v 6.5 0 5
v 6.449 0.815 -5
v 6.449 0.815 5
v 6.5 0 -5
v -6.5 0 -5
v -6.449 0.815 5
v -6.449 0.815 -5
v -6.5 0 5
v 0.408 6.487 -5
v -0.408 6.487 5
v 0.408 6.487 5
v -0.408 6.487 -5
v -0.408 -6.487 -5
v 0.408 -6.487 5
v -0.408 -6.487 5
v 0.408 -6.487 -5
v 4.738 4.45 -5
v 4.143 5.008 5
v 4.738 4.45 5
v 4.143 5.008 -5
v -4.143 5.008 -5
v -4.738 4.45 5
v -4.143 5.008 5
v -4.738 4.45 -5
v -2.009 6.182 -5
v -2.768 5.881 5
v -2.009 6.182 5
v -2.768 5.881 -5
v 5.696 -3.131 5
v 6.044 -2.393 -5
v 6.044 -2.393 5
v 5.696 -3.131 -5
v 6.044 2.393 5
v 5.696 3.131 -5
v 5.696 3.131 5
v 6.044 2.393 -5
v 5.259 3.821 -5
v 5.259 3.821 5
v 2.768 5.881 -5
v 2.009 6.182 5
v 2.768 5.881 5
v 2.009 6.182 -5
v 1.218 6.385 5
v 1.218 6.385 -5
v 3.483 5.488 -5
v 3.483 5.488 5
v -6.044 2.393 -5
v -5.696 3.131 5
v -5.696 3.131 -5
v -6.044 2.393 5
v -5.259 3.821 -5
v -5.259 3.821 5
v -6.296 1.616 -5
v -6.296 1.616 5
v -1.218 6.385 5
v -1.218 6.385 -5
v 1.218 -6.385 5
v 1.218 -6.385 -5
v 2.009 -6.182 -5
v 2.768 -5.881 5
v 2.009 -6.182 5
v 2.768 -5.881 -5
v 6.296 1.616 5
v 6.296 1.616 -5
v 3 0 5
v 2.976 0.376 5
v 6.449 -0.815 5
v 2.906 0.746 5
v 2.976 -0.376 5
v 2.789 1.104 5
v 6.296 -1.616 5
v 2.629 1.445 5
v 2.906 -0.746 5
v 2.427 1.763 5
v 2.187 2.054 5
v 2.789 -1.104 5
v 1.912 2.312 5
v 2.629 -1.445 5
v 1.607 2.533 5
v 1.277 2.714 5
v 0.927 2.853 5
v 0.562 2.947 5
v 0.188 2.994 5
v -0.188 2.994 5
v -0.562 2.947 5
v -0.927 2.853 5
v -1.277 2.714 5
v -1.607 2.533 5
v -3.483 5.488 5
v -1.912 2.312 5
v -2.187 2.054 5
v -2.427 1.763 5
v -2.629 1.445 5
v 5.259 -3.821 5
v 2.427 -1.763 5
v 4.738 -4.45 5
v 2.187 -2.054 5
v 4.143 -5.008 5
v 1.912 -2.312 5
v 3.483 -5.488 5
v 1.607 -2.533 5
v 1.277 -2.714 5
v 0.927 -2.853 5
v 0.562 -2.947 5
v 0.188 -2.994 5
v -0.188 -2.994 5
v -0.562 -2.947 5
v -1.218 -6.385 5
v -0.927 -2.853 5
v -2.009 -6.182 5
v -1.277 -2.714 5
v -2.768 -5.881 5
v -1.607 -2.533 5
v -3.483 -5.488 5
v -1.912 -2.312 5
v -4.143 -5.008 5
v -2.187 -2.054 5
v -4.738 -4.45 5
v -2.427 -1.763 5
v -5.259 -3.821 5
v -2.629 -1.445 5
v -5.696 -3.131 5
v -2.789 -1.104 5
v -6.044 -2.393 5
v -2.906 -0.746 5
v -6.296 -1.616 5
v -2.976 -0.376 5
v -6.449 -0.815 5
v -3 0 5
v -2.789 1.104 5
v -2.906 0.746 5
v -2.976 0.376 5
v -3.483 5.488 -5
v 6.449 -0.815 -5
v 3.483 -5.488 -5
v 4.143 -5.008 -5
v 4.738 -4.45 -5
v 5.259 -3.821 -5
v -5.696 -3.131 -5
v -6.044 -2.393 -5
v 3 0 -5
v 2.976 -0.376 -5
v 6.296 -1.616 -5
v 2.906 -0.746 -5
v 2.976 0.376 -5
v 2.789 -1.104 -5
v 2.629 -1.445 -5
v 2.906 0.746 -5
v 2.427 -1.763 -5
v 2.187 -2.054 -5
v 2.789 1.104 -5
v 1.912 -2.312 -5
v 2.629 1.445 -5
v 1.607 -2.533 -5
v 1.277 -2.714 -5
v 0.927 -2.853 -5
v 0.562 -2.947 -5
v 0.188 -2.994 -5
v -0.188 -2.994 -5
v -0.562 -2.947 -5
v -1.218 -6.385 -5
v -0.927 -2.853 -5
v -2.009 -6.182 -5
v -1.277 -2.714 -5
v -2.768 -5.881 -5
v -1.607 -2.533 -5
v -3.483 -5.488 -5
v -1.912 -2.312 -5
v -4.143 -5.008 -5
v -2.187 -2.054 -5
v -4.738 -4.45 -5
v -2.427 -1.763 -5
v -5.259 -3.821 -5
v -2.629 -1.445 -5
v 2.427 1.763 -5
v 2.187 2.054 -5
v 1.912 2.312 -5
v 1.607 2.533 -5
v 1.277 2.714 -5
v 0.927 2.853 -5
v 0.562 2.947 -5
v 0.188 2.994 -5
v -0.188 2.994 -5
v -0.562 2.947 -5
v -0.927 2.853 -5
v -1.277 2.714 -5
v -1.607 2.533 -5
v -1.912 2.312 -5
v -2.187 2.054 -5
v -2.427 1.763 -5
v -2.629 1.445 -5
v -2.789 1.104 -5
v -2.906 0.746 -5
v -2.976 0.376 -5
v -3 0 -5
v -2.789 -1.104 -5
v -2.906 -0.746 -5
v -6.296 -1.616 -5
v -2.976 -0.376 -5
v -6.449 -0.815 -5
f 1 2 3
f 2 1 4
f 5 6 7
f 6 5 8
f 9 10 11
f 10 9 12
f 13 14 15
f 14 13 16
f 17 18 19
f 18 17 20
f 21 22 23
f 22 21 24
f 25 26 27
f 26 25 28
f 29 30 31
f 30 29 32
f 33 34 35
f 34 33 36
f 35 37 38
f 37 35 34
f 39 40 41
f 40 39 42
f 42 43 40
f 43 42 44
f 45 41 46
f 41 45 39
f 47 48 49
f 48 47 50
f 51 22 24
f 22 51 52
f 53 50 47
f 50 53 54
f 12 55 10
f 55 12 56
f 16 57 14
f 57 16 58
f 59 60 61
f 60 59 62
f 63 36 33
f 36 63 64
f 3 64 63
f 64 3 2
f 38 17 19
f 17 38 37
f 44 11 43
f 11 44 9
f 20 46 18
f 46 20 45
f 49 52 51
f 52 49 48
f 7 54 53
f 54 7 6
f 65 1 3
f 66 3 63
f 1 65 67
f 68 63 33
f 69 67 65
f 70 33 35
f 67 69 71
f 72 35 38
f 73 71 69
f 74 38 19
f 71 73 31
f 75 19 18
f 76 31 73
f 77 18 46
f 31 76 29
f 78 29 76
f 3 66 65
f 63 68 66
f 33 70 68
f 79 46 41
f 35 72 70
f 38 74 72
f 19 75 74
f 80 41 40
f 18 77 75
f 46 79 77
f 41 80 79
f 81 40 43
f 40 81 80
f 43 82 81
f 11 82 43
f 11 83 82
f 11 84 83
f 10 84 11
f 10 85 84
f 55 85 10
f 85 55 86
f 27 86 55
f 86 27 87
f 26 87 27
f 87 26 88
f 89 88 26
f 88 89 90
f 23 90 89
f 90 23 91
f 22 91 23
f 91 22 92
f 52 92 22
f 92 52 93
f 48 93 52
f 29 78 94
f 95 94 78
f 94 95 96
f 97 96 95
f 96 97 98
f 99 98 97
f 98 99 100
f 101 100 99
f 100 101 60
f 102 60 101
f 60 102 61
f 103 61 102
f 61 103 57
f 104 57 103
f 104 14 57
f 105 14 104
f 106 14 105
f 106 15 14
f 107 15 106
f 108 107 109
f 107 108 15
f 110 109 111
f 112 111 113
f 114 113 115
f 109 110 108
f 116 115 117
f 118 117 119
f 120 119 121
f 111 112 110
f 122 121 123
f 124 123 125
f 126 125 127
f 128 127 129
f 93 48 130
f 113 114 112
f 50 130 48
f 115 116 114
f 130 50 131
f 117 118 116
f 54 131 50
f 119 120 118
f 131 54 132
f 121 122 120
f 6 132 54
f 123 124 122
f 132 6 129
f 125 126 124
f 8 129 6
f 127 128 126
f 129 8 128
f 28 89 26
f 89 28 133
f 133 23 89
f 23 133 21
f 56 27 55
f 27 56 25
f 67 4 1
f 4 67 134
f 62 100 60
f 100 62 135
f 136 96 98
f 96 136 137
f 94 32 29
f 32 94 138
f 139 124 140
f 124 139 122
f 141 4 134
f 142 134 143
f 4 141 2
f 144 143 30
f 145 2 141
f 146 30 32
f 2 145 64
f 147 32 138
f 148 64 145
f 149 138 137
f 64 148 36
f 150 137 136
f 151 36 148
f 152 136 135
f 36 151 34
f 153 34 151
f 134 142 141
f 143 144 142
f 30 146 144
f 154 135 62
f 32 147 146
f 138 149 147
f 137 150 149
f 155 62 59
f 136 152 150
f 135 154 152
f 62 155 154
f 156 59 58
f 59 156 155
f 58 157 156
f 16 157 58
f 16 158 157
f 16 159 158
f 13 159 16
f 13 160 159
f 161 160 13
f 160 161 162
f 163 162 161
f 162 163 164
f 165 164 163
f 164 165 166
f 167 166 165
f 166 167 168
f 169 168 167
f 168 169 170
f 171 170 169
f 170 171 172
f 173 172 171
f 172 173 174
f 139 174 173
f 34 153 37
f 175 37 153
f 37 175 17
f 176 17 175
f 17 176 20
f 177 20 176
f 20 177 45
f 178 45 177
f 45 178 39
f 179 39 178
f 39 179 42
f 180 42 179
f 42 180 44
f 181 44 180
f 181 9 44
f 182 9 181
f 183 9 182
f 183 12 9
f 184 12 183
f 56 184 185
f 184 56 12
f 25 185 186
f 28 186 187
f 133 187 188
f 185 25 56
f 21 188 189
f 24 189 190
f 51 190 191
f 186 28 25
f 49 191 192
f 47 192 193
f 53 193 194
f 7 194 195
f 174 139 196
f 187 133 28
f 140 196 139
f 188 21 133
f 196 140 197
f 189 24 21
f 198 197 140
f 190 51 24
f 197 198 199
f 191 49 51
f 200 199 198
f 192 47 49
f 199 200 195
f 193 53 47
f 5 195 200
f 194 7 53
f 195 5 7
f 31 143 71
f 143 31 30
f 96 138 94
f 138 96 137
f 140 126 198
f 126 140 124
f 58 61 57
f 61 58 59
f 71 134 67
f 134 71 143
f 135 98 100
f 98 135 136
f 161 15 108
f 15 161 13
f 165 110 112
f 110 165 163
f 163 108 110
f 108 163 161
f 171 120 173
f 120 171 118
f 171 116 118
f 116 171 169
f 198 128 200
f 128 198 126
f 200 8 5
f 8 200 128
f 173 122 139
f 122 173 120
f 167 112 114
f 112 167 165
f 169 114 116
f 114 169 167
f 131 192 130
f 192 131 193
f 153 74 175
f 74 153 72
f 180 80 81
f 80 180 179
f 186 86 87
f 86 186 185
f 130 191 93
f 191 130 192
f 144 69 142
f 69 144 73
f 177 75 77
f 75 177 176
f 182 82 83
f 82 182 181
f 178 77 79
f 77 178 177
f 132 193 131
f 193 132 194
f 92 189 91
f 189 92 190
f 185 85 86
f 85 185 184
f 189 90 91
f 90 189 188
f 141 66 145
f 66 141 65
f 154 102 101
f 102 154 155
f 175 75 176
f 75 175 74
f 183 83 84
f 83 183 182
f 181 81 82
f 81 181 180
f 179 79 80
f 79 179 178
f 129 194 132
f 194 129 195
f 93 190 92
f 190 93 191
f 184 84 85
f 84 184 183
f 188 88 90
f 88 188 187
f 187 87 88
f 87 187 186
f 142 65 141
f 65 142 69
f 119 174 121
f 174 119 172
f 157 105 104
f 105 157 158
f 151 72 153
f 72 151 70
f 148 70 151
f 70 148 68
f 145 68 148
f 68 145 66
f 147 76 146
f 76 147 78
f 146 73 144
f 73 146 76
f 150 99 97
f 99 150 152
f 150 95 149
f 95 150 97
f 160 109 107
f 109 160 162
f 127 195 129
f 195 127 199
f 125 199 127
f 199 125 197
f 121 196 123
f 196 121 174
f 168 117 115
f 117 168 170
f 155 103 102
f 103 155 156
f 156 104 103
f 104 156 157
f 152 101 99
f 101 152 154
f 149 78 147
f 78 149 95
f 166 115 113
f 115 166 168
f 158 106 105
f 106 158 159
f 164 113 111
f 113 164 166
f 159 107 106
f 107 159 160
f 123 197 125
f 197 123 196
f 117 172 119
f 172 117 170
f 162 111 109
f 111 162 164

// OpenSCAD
$fn = 50;


difference() {
	union() {
		translate(v = [0, 0, -5.0000000000]) {
			cylinder(h = 10, r = 6.5000000000);
		}
	}
	union() {
		translate(v = [0, 0, -100.0000000000]) {
			cylinder(h = 200, r = 3);
		}
	}
}
